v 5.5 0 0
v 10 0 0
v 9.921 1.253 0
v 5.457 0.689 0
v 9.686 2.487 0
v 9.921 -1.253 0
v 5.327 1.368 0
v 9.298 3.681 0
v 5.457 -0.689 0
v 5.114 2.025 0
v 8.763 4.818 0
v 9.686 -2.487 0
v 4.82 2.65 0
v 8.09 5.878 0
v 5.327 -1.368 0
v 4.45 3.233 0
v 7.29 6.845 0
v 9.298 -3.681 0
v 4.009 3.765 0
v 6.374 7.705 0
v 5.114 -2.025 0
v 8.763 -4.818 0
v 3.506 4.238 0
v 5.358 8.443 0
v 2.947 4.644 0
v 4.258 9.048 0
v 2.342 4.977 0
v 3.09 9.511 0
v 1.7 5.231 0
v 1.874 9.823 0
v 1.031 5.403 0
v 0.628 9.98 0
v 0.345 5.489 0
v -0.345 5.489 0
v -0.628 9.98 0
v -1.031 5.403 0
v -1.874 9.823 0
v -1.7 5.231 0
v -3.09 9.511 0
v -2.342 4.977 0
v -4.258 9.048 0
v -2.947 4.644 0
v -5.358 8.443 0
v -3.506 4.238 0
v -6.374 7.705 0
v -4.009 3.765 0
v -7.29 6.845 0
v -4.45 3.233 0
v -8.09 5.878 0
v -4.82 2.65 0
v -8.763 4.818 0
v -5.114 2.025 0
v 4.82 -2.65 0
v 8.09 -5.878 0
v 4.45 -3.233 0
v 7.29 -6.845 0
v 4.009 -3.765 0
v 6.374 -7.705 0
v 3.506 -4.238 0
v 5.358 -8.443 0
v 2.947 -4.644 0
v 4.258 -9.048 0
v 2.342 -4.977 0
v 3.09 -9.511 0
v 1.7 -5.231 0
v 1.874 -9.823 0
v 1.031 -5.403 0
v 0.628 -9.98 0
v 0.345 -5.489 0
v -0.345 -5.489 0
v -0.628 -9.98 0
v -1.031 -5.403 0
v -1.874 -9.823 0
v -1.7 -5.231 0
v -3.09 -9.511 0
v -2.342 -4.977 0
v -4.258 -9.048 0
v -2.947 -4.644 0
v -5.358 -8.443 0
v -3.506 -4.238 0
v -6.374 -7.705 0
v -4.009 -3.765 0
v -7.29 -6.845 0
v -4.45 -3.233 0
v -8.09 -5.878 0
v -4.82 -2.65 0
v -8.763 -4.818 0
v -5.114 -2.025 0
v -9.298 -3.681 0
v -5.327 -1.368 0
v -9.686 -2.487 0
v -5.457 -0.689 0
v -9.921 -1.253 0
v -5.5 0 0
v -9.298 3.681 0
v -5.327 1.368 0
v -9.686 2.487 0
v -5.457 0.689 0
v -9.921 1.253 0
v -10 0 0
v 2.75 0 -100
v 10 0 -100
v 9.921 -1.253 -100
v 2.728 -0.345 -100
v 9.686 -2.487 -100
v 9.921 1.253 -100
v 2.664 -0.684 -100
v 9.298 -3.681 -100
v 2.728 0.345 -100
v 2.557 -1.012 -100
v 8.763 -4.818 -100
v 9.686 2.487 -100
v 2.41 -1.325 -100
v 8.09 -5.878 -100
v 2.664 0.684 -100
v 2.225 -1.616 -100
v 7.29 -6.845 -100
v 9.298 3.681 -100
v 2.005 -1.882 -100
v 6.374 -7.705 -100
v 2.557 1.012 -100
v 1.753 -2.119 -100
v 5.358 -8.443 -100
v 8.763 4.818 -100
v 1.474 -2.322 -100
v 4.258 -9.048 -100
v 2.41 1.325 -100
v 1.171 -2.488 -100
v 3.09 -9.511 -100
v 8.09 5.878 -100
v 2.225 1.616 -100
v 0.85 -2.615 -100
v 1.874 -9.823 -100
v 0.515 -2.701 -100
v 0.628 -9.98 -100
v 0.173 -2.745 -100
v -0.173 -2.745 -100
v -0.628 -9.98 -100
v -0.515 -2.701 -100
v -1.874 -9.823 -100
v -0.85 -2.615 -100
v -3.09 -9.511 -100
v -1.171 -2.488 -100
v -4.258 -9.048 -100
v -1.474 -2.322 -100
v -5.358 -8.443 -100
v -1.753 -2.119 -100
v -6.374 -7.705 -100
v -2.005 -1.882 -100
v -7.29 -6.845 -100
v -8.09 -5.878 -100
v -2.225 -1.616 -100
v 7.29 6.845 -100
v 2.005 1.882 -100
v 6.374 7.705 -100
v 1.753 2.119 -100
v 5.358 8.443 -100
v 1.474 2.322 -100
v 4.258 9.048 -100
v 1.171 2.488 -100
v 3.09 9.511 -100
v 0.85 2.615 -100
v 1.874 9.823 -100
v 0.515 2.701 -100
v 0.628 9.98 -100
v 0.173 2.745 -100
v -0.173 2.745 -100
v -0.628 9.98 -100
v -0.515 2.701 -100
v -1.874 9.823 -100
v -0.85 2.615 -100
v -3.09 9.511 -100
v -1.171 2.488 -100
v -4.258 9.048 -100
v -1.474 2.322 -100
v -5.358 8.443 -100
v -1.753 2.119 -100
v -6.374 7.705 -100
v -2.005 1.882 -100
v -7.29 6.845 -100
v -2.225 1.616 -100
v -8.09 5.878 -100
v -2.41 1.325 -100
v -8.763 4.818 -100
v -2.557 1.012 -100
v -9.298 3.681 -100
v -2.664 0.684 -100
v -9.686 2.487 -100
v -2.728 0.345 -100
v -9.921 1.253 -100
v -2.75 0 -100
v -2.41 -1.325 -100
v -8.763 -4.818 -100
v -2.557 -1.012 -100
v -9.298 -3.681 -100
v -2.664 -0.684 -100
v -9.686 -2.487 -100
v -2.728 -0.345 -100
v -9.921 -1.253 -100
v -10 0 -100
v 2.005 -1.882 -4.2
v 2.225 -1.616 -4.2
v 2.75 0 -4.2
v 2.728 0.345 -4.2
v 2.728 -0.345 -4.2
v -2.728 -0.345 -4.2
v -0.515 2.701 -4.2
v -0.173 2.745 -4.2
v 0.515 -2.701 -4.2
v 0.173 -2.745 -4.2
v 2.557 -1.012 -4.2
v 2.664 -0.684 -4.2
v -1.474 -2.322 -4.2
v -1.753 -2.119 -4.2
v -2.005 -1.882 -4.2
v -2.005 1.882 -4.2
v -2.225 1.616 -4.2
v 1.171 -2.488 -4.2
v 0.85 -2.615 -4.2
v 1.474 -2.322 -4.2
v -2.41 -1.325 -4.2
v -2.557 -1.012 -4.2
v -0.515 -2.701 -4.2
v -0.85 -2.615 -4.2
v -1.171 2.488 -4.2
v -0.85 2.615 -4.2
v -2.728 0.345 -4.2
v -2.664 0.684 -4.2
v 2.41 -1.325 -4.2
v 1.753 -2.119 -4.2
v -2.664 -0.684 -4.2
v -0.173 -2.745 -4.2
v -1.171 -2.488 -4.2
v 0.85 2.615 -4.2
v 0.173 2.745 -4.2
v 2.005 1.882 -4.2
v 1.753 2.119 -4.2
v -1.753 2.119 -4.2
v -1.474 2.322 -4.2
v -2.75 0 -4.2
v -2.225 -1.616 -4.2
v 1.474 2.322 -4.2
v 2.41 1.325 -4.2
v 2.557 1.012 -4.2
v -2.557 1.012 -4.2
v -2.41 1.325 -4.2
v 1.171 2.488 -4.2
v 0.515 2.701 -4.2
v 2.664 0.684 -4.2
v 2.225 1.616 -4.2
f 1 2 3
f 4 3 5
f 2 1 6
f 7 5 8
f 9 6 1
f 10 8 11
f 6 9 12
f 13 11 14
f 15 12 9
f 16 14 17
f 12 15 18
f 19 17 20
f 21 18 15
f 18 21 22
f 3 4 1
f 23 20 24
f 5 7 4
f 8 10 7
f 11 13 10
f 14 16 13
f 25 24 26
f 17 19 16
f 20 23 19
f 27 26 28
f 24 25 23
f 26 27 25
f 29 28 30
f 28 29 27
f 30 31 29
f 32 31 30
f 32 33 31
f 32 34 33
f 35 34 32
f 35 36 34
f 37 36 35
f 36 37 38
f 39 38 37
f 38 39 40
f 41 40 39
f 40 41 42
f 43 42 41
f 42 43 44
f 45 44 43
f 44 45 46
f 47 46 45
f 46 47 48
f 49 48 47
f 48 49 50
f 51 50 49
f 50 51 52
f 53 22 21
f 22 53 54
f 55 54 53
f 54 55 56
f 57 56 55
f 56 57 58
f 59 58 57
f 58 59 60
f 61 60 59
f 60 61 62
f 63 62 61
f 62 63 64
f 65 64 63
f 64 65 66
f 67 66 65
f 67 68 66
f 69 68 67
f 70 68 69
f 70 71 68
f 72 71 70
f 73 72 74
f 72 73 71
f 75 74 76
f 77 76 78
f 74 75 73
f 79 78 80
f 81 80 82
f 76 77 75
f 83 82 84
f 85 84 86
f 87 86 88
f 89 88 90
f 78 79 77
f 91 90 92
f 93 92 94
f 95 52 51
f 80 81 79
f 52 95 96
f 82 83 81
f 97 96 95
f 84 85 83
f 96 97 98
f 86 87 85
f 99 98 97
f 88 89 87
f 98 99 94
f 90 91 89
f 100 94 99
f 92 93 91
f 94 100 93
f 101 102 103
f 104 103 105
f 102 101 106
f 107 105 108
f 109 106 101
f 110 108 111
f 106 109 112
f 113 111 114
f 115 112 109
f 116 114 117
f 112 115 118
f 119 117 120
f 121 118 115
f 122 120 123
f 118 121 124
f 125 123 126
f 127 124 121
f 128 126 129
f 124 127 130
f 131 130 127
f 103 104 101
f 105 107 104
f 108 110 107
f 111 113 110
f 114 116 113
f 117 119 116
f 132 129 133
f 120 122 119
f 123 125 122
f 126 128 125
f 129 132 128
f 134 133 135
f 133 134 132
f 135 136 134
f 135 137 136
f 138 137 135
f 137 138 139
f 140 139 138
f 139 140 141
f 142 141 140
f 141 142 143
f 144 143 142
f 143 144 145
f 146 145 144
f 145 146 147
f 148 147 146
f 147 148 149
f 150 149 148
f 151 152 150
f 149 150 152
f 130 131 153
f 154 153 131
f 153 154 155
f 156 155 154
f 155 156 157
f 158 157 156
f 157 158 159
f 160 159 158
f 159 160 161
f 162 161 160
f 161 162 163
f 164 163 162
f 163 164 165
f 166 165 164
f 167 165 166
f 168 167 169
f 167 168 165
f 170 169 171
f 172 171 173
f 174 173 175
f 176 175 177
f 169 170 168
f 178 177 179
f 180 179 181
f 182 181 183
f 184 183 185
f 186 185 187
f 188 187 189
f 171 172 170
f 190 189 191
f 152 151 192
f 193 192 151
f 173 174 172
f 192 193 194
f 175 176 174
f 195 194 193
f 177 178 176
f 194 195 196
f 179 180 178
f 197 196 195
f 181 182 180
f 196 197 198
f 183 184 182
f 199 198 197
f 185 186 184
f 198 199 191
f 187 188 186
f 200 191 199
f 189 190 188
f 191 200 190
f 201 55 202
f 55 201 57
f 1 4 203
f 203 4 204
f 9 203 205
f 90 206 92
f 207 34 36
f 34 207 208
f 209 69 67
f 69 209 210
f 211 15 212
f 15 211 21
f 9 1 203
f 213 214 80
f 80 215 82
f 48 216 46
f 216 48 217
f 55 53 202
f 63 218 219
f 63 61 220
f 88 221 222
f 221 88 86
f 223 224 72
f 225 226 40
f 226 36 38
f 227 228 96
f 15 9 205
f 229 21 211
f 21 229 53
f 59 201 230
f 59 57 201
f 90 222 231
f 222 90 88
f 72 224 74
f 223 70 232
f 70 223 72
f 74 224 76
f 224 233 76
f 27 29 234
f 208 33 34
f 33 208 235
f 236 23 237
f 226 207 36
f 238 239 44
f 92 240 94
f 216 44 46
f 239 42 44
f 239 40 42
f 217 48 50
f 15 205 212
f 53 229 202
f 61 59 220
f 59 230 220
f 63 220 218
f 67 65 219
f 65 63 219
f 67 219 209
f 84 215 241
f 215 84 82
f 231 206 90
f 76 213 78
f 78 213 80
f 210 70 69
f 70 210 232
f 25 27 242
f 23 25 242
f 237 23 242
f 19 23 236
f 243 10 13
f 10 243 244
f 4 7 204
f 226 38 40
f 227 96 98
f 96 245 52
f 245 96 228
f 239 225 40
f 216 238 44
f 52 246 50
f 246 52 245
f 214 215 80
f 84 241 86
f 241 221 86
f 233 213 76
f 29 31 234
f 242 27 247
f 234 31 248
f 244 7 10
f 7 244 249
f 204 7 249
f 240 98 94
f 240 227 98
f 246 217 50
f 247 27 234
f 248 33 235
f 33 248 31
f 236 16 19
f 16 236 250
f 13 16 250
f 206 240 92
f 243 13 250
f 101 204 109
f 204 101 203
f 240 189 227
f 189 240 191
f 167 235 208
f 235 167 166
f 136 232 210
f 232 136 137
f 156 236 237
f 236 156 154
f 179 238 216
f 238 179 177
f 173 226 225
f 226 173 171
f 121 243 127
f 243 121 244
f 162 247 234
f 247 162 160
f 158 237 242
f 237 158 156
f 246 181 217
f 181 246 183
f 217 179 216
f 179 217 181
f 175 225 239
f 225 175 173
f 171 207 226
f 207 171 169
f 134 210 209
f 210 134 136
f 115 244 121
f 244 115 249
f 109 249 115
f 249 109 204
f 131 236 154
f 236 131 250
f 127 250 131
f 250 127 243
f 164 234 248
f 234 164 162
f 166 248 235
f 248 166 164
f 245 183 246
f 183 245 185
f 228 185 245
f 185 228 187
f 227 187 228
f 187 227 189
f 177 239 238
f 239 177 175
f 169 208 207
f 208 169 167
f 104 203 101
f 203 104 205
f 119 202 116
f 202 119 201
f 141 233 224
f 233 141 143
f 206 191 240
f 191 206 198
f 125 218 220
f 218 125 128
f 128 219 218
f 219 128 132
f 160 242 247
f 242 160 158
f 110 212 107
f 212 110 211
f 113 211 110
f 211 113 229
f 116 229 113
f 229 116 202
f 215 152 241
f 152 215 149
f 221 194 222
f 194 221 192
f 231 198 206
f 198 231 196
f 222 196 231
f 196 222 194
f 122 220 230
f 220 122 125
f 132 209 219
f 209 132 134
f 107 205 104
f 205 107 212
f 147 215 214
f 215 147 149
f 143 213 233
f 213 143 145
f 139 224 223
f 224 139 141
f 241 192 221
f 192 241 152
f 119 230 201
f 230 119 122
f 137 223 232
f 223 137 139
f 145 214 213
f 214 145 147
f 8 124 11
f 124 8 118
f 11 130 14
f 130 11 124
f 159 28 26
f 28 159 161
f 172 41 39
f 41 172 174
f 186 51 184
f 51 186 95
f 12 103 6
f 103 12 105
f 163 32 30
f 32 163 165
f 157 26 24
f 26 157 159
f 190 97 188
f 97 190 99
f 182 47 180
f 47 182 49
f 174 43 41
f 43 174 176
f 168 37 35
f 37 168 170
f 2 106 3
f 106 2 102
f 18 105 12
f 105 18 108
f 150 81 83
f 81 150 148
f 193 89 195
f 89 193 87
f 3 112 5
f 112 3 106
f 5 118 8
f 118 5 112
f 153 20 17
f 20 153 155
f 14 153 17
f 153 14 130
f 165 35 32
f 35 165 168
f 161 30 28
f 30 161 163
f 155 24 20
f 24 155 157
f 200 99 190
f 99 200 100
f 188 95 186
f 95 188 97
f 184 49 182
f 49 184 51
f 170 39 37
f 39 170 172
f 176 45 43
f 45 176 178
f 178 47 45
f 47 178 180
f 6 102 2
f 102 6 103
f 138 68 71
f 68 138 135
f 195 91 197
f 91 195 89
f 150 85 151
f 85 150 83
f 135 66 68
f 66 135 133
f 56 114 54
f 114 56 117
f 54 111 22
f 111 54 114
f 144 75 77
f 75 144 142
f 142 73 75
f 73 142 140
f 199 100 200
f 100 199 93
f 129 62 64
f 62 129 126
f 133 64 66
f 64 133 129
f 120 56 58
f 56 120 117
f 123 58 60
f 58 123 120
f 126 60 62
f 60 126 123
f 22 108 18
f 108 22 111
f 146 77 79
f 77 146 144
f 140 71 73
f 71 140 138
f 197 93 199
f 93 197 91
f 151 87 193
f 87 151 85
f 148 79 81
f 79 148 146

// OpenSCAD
$fn = 50;


difference() {
	union() {
		translate(v = [0, 0, -100.0000000000]) {
			cylinder(h = 100, r = 10.0000000000);
		}
		cylinder(h = 0, r = 16.0000000000);
	}
	union() {
		translate(v = [0, 0, 0]) {
			rotate(a = [0, 0, 0]) {
				difference() {
					union() {
						#translate(v = [0, 0, -100.0000000000]) {
							cylinder(h = 100, r = 2.2500000000);
						}
						#translate(v = [0, 0, -4.2000000000]) {
							cylinder(h = 4.2000000000, r = 10.0000000000, r1 = 2.7500000000, r2 = 5.5000000000);
						}
						#translate(v = [0, 0, -100.0000000000]) {
							cylinder(h = 100, r = 2.7500000000);
						}
						#translate(v = [0, 0, -100.0000000000]) {
							cylinder(h = 100, r = 2.2500000000);
						}
					}
					union();
				}
			}
		}
	}
}
